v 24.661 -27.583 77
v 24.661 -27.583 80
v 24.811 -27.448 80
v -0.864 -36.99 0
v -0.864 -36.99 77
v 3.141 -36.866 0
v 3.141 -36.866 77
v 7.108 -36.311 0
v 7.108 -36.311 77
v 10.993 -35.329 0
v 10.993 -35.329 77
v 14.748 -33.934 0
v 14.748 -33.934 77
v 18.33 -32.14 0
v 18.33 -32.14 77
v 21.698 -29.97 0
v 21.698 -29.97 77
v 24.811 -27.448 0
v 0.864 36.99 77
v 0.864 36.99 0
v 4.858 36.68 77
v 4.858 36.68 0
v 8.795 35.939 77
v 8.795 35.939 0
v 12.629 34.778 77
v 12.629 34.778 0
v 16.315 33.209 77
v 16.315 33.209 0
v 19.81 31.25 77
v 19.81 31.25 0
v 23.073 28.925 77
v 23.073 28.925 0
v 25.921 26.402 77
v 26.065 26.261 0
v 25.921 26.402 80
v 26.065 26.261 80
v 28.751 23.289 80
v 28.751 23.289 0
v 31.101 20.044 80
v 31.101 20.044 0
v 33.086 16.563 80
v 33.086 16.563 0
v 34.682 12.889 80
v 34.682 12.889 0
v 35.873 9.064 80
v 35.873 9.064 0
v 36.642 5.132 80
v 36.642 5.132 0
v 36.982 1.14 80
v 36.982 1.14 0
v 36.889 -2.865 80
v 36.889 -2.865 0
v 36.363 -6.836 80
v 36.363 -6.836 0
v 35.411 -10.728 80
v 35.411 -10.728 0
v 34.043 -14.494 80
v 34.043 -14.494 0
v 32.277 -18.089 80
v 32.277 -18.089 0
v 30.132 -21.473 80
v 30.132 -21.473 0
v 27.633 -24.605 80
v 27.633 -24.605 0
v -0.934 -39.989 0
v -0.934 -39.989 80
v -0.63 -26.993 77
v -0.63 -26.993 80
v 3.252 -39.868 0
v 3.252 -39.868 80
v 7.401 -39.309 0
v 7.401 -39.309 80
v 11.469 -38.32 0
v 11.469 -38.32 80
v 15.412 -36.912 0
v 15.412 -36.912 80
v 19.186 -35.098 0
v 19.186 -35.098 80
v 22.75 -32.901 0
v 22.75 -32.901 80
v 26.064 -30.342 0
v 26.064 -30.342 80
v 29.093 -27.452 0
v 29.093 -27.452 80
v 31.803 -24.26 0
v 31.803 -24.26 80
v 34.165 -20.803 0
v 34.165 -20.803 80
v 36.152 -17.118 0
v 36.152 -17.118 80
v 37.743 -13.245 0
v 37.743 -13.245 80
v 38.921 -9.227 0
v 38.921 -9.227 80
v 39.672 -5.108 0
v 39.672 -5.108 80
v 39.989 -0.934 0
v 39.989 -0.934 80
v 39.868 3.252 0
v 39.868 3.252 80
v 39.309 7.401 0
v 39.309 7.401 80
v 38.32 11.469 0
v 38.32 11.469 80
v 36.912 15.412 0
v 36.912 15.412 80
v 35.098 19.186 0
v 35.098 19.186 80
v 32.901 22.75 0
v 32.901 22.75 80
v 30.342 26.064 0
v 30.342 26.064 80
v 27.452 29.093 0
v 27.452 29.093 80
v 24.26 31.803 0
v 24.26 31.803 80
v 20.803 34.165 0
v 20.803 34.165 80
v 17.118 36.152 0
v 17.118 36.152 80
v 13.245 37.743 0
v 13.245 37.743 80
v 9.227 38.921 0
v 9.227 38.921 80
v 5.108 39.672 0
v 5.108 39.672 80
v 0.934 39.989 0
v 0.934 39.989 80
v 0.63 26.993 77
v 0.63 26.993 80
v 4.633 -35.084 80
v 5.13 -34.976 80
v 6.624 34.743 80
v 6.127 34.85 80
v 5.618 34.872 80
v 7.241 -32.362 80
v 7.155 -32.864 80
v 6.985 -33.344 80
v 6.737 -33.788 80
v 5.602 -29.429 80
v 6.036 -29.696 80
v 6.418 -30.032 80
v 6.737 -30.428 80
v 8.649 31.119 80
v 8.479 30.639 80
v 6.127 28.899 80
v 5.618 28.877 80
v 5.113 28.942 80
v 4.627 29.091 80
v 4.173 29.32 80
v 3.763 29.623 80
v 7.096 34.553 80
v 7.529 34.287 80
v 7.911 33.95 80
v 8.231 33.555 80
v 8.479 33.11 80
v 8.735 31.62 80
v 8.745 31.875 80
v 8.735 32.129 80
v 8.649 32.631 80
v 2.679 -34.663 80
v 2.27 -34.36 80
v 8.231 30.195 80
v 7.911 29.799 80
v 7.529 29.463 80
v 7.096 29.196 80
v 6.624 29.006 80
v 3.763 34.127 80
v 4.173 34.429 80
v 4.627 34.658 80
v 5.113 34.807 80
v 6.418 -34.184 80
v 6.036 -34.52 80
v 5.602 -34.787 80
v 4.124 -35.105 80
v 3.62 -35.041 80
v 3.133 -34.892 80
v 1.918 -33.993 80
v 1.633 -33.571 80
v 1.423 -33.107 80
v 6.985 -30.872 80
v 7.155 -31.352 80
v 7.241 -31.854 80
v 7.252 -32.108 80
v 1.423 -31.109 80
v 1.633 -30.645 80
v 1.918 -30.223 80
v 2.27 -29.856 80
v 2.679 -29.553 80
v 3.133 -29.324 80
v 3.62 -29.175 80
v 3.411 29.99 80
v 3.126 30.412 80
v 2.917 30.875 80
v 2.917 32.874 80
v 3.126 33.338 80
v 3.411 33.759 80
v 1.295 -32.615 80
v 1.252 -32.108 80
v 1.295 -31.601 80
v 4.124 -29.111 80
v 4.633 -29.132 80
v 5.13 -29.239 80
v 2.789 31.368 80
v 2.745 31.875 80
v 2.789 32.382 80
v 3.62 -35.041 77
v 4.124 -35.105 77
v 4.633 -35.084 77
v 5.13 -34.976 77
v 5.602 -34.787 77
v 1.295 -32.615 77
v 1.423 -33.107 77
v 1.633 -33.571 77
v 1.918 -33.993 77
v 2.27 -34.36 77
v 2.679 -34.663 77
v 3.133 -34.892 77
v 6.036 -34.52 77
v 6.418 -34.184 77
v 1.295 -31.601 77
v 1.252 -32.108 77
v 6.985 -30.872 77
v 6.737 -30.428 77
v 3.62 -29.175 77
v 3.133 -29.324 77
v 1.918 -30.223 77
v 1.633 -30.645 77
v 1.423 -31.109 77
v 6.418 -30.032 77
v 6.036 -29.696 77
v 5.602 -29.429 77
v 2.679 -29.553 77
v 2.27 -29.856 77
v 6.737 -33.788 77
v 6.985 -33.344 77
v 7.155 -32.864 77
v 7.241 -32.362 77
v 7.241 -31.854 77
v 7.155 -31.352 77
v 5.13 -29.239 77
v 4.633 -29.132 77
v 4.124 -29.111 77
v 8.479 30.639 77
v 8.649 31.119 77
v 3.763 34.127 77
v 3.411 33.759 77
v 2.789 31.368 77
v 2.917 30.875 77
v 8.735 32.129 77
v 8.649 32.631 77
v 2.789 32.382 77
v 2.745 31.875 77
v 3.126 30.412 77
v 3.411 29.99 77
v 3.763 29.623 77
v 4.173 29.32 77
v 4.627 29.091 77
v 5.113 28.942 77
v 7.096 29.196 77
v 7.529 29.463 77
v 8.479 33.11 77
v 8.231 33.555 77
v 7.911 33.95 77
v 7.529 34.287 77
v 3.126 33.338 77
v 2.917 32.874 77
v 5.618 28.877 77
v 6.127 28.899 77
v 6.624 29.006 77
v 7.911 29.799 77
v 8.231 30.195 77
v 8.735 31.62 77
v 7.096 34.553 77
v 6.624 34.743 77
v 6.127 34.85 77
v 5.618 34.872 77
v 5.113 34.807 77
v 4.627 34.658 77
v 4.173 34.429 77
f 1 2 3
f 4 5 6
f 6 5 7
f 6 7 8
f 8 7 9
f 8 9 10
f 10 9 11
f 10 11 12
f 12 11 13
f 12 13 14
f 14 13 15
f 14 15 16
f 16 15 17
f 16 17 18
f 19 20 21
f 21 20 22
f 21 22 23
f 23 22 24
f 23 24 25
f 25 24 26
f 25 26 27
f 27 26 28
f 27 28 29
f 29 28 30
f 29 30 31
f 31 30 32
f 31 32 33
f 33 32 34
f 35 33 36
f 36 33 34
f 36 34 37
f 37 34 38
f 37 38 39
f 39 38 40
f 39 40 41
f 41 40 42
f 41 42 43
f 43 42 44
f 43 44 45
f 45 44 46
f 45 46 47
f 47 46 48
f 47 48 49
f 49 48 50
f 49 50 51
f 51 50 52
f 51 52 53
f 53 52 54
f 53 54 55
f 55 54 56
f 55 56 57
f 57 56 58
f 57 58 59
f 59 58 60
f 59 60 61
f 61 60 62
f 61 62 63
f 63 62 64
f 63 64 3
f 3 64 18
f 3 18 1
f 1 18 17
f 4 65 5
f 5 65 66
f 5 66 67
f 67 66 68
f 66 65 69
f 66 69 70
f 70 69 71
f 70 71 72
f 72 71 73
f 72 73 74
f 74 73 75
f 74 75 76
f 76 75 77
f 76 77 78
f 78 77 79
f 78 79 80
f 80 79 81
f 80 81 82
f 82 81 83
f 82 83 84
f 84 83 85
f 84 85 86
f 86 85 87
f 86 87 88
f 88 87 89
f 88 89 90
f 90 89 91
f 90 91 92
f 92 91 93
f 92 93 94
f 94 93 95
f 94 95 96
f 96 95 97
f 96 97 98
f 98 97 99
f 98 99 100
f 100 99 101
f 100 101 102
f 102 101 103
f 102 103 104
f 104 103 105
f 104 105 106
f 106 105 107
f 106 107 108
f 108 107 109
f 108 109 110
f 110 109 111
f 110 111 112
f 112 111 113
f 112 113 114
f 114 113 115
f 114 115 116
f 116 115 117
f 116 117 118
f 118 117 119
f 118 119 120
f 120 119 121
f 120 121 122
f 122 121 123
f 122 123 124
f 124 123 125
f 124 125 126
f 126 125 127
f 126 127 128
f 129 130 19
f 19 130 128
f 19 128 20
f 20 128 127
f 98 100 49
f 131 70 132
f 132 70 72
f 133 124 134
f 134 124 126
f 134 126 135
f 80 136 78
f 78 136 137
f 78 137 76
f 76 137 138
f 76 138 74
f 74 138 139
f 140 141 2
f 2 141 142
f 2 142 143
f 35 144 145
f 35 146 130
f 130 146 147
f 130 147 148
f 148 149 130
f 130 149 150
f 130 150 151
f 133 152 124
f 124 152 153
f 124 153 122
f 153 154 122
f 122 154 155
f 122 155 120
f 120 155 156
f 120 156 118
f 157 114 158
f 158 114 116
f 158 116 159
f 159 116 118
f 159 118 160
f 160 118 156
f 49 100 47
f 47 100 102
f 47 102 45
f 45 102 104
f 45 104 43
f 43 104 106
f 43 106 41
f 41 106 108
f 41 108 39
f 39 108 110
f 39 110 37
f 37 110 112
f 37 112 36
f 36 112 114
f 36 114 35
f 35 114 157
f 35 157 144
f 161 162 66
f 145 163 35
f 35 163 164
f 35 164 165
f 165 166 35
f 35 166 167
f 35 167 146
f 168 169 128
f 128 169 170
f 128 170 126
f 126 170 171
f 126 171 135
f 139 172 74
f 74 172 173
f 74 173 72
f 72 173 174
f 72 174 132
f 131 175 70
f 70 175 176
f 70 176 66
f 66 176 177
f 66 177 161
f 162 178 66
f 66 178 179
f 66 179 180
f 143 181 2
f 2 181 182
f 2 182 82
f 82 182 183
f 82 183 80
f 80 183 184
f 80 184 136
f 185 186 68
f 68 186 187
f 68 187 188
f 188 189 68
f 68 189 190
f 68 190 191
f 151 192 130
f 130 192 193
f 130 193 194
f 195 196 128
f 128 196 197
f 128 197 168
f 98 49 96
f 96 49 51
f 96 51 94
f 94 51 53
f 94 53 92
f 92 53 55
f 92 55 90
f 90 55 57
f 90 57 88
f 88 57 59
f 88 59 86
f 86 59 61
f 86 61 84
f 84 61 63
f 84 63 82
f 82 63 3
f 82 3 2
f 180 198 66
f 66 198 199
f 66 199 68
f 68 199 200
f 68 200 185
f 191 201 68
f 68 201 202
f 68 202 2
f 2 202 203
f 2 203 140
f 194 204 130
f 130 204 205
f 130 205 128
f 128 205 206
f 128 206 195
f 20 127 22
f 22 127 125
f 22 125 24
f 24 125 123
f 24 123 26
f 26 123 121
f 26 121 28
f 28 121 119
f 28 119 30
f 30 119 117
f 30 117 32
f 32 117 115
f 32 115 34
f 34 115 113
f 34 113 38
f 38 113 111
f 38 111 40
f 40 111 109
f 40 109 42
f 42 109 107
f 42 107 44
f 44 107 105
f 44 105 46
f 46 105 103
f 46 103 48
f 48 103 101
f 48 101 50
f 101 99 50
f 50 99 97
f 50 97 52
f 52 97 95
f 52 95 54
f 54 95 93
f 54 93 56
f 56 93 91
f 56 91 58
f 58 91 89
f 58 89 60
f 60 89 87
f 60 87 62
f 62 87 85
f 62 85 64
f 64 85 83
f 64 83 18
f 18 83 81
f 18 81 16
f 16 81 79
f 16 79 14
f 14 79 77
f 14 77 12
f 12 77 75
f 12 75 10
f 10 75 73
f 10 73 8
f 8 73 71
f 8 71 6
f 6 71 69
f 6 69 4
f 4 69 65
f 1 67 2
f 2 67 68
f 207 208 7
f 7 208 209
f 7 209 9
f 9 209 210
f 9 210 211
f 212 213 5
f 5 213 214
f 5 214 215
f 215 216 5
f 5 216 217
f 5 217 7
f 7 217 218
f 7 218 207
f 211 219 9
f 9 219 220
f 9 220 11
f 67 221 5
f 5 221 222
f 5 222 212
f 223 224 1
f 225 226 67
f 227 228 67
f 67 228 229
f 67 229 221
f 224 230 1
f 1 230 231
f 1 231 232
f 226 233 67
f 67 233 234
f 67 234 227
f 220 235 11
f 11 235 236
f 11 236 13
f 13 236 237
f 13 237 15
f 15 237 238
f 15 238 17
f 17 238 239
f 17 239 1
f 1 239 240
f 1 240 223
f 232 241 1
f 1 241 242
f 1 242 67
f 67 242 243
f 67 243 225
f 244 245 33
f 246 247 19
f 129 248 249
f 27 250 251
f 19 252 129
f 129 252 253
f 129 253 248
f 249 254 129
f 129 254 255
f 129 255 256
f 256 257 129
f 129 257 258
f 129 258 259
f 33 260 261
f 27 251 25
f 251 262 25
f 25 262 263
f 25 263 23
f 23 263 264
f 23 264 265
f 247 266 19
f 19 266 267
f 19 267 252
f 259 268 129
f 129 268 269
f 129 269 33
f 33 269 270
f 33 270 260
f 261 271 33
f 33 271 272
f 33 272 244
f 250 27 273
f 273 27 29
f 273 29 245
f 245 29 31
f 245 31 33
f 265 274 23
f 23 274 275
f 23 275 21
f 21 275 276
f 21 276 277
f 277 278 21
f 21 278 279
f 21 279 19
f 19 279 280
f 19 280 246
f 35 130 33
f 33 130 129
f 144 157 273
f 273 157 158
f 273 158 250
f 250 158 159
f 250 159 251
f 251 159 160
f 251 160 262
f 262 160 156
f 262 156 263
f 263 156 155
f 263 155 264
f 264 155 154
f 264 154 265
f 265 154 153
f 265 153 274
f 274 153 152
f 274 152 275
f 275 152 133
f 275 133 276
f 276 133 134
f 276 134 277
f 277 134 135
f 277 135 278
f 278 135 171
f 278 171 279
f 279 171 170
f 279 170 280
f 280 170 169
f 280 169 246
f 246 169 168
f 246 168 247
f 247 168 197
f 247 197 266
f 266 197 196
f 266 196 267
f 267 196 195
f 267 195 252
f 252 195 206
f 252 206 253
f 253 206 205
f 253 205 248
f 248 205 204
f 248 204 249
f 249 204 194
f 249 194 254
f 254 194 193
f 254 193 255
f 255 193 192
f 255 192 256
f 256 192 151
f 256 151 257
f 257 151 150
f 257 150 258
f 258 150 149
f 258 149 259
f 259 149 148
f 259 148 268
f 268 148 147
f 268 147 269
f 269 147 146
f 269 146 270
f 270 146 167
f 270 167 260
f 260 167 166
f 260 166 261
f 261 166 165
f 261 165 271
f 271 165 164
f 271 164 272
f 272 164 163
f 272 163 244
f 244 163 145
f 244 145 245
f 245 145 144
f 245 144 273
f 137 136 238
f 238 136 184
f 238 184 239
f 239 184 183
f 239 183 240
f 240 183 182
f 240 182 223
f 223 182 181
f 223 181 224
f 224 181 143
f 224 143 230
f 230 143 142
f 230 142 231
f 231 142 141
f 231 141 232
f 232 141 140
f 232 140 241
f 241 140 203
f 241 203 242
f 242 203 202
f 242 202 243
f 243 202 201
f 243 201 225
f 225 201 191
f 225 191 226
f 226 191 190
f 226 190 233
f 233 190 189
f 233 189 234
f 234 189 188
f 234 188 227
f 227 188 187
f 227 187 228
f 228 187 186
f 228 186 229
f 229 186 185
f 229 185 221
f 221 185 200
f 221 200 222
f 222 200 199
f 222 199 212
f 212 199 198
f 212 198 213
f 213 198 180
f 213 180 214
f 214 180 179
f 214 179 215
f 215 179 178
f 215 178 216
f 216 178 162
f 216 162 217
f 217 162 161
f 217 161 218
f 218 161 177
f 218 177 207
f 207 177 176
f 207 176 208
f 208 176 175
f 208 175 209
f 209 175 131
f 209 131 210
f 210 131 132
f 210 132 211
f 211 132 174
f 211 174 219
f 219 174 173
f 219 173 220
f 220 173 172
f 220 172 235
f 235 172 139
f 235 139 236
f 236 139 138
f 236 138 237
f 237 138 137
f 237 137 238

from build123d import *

# Parameters (mm, degrees)
BOSS_EXTRUDE1_DEPTH      = 80
BOSS_EXTRUDE2_REACH      = 99.98
BOSS_EXTRUDE2_END_RADIUS = 37
SKETCH4_W                = 3
SKETCH4_H                = 10
BOSS_EXTRUDE3_REACH      = 99.98
BOSS_EXTRUDE3_END_RADIUS = 37
SKETCH5_W                = 3
SKETCH5_H                = 10
SKETCH6_R                = 3
CUT_EXTRUDE1_DEPTH       = 3


with BuildPart() as part:
    # Sketch2 → Boss-Extrude1 (new body)
    with BuildSketch(Plane.XY):
        with BuildLine():
            Line((0.933575247, 39.989103982), (0.863557104, 36.989921183))
            ThreePointArc((0.863557104, 36.989921183), (36.989921183, -0.863557104), (-0.863557104, -36.989921183))
            Line((-0.863557104, -36.989921183), (-0.933575248, -39.989103982))
            ThreePointArc((-0.933575248, -39.989103982), (39.989103982, -0.933575247), (0.933575247, 39.989103982))
        make_face()
    extrude(amount=BOSS_EXTRUDE1_DEPTH)

    # Boss-Extrude2: up to this cylinder (the profile starts inside it)
    boss_extrude2_end = Plane(origin=(0, 0, 78.5), z_dir=(0, 0, -1)) * Cylinder(BOSS_EXTRUDE2_END_RADIUS, 274.96, mode=Mode.PRIVATE)
    # Sketch4 → Boss-Extrude2 (add, up to the surface)
    with BuildSketch(Plane(origin=(0, 0, 0), x_dir=(0, 0, 1), z_dir=(-0.9997275995418874, 0.02333938118750909, 0)), mode=Mode.PRIVATE) as boss_extrude2_sk1:
        with Locations((78.5, -32)):
            Rectangle(SKETCH4_W, SKETCH4_H)
    boss_extrude2_tool1 = extrude(boss_extrude2_sk1.sketch, amount=-BOSS_EXTRUDE2_REACH, mode=Mode.PRIVATE) & boss_extrude2_end
    add(boss_extrude2_tool1.solids().sort_by_distance((-0.74686, -31.991283, 78.5))[0])

    # Boss-Extrude3: up to this cylinder (the profile starts inside it)
    boss_extrude3_end = Plane(origin=(0, 0, 78.5), z_dir=(0, 0, -1)) * Cylinder(BOSS_EXTRUDE3_END_RADIUS, 274.96, mode=Mode.PRIVATE)
    # Sketch5 → Boss-Extrude3 (add, up to the surface)
    with BuildSketch(Plane(origin=(0, 0, 0), x_dir=(0, 0, 1), z_dir=(-0.9997275995418874, 0.02333938118750974, 0)), mode=Mode.PRIVATE) as boss_extrude3_sk1:
        with Locations((78.5, 32)):
            Rectangle(SKETCH5_W, SKETCH5_H)
    boss_extrude3_tool1 = extrude(boss_extrude3_sk1.sketch, amount=-BOSS_EXTRUDE3_REACH, mode=Mode.PRIVATE) & boss_extrude3_end
    add(boss_extrude3_tool1.solids().sort_by_distance((0.74686, 31.991283, 78.5))[0])

    # Sketch6 → Cut-Extrude1 (cut)
    with BuildSketch(Plane(origin=(0, 0, 77), x_dir=(-1, 0, 0), z_dir=(0, 0, -1))):
        with Locations((-5.745498196, 31.874586279)):
            Circle(SKETCH6_R)
        with Locations((-4.2517778, -32.107980091)):
            Circle(SKETCH6_R)
    extrude(amount=-CUT_EXTRUDE1_DEPTH, mode=Mode.SUBTRACT)


solid = part.part
